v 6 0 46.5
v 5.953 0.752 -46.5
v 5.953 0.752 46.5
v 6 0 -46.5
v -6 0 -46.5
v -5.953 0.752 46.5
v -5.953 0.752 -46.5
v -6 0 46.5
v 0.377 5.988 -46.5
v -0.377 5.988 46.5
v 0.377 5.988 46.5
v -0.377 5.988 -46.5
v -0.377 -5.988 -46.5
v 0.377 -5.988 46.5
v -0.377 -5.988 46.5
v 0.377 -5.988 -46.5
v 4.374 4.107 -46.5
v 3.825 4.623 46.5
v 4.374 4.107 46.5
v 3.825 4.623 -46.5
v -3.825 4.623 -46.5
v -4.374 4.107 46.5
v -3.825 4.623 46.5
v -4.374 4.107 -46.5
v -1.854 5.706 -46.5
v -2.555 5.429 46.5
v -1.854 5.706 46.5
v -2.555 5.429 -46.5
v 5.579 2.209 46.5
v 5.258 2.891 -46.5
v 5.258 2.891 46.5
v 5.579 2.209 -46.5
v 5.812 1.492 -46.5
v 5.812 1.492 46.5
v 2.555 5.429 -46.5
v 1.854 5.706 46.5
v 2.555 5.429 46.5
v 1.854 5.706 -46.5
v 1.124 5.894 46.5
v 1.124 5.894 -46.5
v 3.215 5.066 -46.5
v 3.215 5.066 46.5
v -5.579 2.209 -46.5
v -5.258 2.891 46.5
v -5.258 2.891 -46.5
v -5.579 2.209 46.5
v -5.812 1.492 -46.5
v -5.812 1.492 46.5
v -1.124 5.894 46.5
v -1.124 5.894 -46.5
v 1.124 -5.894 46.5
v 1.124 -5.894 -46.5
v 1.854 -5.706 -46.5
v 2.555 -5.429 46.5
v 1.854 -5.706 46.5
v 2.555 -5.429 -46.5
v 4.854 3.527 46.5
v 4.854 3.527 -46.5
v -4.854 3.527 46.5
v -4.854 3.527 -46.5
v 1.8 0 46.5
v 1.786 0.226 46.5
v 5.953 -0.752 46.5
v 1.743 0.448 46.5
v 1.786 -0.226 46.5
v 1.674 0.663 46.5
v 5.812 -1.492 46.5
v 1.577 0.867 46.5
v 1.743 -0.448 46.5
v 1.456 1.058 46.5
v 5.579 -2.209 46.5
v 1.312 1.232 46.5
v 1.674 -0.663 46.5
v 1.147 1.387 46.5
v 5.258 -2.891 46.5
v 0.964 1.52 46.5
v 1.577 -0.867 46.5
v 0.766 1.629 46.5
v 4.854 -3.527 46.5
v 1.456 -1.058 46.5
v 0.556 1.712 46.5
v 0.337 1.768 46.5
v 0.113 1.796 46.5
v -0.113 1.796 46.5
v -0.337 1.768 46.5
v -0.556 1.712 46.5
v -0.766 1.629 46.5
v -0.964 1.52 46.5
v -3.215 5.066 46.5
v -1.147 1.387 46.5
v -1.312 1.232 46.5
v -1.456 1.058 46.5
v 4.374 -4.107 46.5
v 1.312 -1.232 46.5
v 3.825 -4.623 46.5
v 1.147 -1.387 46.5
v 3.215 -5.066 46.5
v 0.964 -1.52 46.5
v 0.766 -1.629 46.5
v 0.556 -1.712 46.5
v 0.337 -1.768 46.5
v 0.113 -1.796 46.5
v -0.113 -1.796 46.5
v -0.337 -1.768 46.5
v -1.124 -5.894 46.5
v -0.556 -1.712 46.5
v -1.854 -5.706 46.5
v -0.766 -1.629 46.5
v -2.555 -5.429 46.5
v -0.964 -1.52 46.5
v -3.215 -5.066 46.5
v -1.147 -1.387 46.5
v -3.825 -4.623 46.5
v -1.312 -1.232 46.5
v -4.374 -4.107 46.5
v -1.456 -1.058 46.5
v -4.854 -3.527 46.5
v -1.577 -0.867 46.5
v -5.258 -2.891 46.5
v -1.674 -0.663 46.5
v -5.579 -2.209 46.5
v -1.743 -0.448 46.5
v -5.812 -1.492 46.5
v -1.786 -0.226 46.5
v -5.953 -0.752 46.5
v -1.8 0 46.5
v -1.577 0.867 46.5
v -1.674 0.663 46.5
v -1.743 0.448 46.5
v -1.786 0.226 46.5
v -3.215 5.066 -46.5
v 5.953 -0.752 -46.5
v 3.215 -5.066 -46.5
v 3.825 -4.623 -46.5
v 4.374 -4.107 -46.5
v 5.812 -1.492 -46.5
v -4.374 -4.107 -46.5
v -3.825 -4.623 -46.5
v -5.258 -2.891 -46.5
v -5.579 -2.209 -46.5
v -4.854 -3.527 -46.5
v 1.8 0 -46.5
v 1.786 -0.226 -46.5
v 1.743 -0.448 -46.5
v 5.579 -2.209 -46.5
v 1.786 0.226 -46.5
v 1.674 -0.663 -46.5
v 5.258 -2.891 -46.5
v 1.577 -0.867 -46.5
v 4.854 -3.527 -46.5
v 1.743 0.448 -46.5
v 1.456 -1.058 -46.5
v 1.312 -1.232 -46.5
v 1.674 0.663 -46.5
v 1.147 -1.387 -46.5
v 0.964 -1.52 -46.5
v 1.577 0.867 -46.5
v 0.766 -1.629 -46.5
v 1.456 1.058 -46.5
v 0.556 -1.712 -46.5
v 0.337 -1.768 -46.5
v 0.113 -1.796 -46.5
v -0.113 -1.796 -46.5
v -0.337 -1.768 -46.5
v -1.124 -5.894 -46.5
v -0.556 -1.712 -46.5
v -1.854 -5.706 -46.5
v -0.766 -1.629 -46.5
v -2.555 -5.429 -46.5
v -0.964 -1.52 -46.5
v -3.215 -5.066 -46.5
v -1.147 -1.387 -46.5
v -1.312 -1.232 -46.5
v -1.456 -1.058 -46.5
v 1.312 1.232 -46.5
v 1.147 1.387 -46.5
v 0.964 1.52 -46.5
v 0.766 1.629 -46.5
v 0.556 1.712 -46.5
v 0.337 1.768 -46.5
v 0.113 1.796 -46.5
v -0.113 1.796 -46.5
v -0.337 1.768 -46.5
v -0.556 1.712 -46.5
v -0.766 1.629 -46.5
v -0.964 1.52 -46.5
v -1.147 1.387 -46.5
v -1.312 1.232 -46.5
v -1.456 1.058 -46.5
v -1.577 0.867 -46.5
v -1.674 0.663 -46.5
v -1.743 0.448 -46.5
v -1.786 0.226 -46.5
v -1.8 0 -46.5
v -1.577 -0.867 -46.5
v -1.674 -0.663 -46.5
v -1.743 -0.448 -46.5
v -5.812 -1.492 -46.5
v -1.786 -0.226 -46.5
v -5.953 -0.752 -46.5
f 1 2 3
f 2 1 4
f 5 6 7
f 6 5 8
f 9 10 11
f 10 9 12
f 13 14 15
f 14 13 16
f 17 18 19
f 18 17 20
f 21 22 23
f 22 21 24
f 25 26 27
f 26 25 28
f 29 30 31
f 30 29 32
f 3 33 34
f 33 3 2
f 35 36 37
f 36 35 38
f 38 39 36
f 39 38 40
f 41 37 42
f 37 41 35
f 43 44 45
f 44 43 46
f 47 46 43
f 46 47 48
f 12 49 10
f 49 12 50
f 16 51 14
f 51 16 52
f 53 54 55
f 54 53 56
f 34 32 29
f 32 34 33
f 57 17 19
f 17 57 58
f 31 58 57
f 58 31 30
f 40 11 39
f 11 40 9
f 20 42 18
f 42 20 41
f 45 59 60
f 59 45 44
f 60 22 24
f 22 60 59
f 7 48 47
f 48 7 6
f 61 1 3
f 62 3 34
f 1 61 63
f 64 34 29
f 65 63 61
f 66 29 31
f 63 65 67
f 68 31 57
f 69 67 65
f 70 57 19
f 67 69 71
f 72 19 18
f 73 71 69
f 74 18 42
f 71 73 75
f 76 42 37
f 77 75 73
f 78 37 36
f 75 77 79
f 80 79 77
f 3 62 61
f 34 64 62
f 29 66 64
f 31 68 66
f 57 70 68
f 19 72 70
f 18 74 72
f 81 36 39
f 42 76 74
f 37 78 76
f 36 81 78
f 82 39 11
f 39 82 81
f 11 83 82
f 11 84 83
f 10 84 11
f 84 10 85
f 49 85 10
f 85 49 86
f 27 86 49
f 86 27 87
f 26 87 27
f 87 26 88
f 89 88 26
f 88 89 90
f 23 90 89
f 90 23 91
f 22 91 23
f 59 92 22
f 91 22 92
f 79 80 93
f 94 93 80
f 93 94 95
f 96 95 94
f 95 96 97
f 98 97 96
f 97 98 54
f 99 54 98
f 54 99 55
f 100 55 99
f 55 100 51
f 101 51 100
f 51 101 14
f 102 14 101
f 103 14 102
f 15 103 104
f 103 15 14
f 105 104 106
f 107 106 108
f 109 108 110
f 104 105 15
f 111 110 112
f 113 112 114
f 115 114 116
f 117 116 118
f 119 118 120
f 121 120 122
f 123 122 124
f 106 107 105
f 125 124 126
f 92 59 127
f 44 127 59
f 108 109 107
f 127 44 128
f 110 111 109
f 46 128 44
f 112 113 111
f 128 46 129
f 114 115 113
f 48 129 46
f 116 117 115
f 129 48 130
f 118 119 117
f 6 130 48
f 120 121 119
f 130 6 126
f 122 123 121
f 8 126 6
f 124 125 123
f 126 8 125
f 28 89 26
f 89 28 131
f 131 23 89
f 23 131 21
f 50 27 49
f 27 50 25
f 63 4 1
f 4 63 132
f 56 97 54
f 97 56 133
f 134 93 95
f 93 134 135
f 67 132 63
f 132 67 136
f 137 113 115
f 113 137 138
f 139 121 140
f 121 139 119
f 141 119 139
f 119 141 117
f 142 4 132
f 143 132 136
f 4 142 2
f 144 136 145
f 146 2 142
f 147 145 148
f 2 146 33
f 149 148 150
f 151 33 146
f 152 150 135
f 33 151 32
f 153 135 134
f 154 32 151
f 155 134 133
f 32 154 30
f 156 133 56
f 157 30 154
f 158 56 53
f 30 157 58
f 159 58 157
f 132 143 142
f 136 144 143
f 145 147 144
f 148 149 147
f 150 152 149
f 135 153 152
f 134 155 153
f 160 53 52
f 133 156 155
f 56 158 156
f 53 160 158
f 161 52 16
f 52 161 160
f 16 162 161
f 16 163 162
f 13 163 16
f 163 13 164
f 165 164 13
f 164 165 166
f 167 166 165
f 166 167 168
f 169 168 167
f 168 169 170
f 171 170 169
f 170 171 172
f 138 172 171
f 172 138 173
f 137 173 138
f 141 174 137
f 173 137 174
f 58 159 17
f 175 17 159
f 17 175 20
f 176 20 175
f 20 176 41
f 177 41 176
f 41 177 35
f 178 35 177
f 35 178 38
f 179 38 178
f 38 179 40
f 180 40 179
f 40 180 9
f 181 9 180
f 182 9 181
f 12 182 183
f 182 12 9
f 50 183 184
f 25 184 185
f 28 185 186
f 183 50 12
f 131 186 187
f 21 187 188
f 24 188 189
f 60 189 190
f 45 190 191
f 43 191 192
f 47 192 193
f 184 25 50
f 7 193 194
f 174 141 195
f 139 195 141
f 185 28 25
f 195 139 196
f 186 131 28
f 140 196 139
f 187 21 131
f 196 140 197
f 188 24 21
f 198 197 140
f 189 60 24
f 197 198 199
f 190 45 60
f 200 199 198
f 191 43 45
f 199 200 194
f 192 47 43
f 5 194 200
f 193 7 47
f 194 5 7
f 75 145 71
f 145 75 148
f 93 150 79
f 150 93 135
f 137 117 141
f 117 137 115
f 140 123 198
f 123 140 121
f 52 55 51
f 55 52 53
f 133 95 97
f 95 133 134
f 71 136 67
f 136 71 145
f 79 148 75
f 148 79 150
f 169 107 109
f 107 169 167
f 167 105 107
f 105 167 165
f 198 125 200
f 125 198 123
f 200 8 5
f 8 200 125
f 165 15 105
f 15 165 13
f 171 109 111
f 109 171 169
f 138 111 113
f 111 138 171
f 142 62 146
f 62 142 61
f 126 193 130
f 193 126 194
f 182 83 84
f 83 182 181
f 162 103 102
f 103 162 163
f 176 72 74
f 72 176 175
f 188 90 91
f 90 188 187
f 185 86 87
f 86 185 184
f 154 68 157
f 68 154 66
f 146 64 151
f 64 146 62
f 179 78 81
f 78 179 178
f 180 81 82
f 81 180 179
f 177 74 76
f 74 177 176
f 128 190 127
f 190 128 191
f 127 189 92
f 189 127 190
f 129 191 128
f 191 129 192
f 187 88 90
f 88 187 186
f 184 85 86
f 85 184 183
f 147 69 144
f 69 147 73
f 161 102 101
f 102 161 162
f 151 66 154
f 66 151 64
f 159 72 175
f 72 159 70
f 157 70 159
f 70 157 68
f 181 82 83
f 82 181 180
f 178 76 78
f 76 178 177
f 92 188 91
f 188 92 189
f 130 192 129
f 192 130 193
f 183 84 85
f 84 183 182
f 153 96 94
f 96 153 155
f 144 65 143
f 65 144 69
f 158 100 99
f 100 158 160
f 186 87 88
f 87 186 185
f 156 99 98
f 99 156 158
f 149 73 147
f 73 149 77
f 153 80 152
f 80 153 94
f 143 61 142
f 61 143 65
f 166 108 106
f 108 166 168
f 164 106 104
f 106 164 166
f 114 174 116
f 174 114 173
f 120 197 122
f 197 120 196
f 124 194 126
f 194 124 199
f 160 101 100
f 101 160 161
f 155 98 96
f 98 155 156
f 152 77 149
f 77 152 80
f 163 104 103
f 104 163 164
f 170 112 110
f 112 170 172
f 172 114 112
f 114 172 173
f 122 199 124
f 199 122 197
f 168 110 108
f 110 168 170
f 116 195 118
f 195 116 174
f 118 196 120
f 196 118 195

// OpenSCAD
$fn = 50;


difference() {
	union() {
		translate(v = [0, 0, -46.5000000000]) {
			cylinder(h = 93, r = 6.0000000000);
		}
	}
	union() {
		translate(v = [0, 0, -100.0000000000]) {
			cylinder(h = 200, r = 1.8000000000);
		}
	}
}
